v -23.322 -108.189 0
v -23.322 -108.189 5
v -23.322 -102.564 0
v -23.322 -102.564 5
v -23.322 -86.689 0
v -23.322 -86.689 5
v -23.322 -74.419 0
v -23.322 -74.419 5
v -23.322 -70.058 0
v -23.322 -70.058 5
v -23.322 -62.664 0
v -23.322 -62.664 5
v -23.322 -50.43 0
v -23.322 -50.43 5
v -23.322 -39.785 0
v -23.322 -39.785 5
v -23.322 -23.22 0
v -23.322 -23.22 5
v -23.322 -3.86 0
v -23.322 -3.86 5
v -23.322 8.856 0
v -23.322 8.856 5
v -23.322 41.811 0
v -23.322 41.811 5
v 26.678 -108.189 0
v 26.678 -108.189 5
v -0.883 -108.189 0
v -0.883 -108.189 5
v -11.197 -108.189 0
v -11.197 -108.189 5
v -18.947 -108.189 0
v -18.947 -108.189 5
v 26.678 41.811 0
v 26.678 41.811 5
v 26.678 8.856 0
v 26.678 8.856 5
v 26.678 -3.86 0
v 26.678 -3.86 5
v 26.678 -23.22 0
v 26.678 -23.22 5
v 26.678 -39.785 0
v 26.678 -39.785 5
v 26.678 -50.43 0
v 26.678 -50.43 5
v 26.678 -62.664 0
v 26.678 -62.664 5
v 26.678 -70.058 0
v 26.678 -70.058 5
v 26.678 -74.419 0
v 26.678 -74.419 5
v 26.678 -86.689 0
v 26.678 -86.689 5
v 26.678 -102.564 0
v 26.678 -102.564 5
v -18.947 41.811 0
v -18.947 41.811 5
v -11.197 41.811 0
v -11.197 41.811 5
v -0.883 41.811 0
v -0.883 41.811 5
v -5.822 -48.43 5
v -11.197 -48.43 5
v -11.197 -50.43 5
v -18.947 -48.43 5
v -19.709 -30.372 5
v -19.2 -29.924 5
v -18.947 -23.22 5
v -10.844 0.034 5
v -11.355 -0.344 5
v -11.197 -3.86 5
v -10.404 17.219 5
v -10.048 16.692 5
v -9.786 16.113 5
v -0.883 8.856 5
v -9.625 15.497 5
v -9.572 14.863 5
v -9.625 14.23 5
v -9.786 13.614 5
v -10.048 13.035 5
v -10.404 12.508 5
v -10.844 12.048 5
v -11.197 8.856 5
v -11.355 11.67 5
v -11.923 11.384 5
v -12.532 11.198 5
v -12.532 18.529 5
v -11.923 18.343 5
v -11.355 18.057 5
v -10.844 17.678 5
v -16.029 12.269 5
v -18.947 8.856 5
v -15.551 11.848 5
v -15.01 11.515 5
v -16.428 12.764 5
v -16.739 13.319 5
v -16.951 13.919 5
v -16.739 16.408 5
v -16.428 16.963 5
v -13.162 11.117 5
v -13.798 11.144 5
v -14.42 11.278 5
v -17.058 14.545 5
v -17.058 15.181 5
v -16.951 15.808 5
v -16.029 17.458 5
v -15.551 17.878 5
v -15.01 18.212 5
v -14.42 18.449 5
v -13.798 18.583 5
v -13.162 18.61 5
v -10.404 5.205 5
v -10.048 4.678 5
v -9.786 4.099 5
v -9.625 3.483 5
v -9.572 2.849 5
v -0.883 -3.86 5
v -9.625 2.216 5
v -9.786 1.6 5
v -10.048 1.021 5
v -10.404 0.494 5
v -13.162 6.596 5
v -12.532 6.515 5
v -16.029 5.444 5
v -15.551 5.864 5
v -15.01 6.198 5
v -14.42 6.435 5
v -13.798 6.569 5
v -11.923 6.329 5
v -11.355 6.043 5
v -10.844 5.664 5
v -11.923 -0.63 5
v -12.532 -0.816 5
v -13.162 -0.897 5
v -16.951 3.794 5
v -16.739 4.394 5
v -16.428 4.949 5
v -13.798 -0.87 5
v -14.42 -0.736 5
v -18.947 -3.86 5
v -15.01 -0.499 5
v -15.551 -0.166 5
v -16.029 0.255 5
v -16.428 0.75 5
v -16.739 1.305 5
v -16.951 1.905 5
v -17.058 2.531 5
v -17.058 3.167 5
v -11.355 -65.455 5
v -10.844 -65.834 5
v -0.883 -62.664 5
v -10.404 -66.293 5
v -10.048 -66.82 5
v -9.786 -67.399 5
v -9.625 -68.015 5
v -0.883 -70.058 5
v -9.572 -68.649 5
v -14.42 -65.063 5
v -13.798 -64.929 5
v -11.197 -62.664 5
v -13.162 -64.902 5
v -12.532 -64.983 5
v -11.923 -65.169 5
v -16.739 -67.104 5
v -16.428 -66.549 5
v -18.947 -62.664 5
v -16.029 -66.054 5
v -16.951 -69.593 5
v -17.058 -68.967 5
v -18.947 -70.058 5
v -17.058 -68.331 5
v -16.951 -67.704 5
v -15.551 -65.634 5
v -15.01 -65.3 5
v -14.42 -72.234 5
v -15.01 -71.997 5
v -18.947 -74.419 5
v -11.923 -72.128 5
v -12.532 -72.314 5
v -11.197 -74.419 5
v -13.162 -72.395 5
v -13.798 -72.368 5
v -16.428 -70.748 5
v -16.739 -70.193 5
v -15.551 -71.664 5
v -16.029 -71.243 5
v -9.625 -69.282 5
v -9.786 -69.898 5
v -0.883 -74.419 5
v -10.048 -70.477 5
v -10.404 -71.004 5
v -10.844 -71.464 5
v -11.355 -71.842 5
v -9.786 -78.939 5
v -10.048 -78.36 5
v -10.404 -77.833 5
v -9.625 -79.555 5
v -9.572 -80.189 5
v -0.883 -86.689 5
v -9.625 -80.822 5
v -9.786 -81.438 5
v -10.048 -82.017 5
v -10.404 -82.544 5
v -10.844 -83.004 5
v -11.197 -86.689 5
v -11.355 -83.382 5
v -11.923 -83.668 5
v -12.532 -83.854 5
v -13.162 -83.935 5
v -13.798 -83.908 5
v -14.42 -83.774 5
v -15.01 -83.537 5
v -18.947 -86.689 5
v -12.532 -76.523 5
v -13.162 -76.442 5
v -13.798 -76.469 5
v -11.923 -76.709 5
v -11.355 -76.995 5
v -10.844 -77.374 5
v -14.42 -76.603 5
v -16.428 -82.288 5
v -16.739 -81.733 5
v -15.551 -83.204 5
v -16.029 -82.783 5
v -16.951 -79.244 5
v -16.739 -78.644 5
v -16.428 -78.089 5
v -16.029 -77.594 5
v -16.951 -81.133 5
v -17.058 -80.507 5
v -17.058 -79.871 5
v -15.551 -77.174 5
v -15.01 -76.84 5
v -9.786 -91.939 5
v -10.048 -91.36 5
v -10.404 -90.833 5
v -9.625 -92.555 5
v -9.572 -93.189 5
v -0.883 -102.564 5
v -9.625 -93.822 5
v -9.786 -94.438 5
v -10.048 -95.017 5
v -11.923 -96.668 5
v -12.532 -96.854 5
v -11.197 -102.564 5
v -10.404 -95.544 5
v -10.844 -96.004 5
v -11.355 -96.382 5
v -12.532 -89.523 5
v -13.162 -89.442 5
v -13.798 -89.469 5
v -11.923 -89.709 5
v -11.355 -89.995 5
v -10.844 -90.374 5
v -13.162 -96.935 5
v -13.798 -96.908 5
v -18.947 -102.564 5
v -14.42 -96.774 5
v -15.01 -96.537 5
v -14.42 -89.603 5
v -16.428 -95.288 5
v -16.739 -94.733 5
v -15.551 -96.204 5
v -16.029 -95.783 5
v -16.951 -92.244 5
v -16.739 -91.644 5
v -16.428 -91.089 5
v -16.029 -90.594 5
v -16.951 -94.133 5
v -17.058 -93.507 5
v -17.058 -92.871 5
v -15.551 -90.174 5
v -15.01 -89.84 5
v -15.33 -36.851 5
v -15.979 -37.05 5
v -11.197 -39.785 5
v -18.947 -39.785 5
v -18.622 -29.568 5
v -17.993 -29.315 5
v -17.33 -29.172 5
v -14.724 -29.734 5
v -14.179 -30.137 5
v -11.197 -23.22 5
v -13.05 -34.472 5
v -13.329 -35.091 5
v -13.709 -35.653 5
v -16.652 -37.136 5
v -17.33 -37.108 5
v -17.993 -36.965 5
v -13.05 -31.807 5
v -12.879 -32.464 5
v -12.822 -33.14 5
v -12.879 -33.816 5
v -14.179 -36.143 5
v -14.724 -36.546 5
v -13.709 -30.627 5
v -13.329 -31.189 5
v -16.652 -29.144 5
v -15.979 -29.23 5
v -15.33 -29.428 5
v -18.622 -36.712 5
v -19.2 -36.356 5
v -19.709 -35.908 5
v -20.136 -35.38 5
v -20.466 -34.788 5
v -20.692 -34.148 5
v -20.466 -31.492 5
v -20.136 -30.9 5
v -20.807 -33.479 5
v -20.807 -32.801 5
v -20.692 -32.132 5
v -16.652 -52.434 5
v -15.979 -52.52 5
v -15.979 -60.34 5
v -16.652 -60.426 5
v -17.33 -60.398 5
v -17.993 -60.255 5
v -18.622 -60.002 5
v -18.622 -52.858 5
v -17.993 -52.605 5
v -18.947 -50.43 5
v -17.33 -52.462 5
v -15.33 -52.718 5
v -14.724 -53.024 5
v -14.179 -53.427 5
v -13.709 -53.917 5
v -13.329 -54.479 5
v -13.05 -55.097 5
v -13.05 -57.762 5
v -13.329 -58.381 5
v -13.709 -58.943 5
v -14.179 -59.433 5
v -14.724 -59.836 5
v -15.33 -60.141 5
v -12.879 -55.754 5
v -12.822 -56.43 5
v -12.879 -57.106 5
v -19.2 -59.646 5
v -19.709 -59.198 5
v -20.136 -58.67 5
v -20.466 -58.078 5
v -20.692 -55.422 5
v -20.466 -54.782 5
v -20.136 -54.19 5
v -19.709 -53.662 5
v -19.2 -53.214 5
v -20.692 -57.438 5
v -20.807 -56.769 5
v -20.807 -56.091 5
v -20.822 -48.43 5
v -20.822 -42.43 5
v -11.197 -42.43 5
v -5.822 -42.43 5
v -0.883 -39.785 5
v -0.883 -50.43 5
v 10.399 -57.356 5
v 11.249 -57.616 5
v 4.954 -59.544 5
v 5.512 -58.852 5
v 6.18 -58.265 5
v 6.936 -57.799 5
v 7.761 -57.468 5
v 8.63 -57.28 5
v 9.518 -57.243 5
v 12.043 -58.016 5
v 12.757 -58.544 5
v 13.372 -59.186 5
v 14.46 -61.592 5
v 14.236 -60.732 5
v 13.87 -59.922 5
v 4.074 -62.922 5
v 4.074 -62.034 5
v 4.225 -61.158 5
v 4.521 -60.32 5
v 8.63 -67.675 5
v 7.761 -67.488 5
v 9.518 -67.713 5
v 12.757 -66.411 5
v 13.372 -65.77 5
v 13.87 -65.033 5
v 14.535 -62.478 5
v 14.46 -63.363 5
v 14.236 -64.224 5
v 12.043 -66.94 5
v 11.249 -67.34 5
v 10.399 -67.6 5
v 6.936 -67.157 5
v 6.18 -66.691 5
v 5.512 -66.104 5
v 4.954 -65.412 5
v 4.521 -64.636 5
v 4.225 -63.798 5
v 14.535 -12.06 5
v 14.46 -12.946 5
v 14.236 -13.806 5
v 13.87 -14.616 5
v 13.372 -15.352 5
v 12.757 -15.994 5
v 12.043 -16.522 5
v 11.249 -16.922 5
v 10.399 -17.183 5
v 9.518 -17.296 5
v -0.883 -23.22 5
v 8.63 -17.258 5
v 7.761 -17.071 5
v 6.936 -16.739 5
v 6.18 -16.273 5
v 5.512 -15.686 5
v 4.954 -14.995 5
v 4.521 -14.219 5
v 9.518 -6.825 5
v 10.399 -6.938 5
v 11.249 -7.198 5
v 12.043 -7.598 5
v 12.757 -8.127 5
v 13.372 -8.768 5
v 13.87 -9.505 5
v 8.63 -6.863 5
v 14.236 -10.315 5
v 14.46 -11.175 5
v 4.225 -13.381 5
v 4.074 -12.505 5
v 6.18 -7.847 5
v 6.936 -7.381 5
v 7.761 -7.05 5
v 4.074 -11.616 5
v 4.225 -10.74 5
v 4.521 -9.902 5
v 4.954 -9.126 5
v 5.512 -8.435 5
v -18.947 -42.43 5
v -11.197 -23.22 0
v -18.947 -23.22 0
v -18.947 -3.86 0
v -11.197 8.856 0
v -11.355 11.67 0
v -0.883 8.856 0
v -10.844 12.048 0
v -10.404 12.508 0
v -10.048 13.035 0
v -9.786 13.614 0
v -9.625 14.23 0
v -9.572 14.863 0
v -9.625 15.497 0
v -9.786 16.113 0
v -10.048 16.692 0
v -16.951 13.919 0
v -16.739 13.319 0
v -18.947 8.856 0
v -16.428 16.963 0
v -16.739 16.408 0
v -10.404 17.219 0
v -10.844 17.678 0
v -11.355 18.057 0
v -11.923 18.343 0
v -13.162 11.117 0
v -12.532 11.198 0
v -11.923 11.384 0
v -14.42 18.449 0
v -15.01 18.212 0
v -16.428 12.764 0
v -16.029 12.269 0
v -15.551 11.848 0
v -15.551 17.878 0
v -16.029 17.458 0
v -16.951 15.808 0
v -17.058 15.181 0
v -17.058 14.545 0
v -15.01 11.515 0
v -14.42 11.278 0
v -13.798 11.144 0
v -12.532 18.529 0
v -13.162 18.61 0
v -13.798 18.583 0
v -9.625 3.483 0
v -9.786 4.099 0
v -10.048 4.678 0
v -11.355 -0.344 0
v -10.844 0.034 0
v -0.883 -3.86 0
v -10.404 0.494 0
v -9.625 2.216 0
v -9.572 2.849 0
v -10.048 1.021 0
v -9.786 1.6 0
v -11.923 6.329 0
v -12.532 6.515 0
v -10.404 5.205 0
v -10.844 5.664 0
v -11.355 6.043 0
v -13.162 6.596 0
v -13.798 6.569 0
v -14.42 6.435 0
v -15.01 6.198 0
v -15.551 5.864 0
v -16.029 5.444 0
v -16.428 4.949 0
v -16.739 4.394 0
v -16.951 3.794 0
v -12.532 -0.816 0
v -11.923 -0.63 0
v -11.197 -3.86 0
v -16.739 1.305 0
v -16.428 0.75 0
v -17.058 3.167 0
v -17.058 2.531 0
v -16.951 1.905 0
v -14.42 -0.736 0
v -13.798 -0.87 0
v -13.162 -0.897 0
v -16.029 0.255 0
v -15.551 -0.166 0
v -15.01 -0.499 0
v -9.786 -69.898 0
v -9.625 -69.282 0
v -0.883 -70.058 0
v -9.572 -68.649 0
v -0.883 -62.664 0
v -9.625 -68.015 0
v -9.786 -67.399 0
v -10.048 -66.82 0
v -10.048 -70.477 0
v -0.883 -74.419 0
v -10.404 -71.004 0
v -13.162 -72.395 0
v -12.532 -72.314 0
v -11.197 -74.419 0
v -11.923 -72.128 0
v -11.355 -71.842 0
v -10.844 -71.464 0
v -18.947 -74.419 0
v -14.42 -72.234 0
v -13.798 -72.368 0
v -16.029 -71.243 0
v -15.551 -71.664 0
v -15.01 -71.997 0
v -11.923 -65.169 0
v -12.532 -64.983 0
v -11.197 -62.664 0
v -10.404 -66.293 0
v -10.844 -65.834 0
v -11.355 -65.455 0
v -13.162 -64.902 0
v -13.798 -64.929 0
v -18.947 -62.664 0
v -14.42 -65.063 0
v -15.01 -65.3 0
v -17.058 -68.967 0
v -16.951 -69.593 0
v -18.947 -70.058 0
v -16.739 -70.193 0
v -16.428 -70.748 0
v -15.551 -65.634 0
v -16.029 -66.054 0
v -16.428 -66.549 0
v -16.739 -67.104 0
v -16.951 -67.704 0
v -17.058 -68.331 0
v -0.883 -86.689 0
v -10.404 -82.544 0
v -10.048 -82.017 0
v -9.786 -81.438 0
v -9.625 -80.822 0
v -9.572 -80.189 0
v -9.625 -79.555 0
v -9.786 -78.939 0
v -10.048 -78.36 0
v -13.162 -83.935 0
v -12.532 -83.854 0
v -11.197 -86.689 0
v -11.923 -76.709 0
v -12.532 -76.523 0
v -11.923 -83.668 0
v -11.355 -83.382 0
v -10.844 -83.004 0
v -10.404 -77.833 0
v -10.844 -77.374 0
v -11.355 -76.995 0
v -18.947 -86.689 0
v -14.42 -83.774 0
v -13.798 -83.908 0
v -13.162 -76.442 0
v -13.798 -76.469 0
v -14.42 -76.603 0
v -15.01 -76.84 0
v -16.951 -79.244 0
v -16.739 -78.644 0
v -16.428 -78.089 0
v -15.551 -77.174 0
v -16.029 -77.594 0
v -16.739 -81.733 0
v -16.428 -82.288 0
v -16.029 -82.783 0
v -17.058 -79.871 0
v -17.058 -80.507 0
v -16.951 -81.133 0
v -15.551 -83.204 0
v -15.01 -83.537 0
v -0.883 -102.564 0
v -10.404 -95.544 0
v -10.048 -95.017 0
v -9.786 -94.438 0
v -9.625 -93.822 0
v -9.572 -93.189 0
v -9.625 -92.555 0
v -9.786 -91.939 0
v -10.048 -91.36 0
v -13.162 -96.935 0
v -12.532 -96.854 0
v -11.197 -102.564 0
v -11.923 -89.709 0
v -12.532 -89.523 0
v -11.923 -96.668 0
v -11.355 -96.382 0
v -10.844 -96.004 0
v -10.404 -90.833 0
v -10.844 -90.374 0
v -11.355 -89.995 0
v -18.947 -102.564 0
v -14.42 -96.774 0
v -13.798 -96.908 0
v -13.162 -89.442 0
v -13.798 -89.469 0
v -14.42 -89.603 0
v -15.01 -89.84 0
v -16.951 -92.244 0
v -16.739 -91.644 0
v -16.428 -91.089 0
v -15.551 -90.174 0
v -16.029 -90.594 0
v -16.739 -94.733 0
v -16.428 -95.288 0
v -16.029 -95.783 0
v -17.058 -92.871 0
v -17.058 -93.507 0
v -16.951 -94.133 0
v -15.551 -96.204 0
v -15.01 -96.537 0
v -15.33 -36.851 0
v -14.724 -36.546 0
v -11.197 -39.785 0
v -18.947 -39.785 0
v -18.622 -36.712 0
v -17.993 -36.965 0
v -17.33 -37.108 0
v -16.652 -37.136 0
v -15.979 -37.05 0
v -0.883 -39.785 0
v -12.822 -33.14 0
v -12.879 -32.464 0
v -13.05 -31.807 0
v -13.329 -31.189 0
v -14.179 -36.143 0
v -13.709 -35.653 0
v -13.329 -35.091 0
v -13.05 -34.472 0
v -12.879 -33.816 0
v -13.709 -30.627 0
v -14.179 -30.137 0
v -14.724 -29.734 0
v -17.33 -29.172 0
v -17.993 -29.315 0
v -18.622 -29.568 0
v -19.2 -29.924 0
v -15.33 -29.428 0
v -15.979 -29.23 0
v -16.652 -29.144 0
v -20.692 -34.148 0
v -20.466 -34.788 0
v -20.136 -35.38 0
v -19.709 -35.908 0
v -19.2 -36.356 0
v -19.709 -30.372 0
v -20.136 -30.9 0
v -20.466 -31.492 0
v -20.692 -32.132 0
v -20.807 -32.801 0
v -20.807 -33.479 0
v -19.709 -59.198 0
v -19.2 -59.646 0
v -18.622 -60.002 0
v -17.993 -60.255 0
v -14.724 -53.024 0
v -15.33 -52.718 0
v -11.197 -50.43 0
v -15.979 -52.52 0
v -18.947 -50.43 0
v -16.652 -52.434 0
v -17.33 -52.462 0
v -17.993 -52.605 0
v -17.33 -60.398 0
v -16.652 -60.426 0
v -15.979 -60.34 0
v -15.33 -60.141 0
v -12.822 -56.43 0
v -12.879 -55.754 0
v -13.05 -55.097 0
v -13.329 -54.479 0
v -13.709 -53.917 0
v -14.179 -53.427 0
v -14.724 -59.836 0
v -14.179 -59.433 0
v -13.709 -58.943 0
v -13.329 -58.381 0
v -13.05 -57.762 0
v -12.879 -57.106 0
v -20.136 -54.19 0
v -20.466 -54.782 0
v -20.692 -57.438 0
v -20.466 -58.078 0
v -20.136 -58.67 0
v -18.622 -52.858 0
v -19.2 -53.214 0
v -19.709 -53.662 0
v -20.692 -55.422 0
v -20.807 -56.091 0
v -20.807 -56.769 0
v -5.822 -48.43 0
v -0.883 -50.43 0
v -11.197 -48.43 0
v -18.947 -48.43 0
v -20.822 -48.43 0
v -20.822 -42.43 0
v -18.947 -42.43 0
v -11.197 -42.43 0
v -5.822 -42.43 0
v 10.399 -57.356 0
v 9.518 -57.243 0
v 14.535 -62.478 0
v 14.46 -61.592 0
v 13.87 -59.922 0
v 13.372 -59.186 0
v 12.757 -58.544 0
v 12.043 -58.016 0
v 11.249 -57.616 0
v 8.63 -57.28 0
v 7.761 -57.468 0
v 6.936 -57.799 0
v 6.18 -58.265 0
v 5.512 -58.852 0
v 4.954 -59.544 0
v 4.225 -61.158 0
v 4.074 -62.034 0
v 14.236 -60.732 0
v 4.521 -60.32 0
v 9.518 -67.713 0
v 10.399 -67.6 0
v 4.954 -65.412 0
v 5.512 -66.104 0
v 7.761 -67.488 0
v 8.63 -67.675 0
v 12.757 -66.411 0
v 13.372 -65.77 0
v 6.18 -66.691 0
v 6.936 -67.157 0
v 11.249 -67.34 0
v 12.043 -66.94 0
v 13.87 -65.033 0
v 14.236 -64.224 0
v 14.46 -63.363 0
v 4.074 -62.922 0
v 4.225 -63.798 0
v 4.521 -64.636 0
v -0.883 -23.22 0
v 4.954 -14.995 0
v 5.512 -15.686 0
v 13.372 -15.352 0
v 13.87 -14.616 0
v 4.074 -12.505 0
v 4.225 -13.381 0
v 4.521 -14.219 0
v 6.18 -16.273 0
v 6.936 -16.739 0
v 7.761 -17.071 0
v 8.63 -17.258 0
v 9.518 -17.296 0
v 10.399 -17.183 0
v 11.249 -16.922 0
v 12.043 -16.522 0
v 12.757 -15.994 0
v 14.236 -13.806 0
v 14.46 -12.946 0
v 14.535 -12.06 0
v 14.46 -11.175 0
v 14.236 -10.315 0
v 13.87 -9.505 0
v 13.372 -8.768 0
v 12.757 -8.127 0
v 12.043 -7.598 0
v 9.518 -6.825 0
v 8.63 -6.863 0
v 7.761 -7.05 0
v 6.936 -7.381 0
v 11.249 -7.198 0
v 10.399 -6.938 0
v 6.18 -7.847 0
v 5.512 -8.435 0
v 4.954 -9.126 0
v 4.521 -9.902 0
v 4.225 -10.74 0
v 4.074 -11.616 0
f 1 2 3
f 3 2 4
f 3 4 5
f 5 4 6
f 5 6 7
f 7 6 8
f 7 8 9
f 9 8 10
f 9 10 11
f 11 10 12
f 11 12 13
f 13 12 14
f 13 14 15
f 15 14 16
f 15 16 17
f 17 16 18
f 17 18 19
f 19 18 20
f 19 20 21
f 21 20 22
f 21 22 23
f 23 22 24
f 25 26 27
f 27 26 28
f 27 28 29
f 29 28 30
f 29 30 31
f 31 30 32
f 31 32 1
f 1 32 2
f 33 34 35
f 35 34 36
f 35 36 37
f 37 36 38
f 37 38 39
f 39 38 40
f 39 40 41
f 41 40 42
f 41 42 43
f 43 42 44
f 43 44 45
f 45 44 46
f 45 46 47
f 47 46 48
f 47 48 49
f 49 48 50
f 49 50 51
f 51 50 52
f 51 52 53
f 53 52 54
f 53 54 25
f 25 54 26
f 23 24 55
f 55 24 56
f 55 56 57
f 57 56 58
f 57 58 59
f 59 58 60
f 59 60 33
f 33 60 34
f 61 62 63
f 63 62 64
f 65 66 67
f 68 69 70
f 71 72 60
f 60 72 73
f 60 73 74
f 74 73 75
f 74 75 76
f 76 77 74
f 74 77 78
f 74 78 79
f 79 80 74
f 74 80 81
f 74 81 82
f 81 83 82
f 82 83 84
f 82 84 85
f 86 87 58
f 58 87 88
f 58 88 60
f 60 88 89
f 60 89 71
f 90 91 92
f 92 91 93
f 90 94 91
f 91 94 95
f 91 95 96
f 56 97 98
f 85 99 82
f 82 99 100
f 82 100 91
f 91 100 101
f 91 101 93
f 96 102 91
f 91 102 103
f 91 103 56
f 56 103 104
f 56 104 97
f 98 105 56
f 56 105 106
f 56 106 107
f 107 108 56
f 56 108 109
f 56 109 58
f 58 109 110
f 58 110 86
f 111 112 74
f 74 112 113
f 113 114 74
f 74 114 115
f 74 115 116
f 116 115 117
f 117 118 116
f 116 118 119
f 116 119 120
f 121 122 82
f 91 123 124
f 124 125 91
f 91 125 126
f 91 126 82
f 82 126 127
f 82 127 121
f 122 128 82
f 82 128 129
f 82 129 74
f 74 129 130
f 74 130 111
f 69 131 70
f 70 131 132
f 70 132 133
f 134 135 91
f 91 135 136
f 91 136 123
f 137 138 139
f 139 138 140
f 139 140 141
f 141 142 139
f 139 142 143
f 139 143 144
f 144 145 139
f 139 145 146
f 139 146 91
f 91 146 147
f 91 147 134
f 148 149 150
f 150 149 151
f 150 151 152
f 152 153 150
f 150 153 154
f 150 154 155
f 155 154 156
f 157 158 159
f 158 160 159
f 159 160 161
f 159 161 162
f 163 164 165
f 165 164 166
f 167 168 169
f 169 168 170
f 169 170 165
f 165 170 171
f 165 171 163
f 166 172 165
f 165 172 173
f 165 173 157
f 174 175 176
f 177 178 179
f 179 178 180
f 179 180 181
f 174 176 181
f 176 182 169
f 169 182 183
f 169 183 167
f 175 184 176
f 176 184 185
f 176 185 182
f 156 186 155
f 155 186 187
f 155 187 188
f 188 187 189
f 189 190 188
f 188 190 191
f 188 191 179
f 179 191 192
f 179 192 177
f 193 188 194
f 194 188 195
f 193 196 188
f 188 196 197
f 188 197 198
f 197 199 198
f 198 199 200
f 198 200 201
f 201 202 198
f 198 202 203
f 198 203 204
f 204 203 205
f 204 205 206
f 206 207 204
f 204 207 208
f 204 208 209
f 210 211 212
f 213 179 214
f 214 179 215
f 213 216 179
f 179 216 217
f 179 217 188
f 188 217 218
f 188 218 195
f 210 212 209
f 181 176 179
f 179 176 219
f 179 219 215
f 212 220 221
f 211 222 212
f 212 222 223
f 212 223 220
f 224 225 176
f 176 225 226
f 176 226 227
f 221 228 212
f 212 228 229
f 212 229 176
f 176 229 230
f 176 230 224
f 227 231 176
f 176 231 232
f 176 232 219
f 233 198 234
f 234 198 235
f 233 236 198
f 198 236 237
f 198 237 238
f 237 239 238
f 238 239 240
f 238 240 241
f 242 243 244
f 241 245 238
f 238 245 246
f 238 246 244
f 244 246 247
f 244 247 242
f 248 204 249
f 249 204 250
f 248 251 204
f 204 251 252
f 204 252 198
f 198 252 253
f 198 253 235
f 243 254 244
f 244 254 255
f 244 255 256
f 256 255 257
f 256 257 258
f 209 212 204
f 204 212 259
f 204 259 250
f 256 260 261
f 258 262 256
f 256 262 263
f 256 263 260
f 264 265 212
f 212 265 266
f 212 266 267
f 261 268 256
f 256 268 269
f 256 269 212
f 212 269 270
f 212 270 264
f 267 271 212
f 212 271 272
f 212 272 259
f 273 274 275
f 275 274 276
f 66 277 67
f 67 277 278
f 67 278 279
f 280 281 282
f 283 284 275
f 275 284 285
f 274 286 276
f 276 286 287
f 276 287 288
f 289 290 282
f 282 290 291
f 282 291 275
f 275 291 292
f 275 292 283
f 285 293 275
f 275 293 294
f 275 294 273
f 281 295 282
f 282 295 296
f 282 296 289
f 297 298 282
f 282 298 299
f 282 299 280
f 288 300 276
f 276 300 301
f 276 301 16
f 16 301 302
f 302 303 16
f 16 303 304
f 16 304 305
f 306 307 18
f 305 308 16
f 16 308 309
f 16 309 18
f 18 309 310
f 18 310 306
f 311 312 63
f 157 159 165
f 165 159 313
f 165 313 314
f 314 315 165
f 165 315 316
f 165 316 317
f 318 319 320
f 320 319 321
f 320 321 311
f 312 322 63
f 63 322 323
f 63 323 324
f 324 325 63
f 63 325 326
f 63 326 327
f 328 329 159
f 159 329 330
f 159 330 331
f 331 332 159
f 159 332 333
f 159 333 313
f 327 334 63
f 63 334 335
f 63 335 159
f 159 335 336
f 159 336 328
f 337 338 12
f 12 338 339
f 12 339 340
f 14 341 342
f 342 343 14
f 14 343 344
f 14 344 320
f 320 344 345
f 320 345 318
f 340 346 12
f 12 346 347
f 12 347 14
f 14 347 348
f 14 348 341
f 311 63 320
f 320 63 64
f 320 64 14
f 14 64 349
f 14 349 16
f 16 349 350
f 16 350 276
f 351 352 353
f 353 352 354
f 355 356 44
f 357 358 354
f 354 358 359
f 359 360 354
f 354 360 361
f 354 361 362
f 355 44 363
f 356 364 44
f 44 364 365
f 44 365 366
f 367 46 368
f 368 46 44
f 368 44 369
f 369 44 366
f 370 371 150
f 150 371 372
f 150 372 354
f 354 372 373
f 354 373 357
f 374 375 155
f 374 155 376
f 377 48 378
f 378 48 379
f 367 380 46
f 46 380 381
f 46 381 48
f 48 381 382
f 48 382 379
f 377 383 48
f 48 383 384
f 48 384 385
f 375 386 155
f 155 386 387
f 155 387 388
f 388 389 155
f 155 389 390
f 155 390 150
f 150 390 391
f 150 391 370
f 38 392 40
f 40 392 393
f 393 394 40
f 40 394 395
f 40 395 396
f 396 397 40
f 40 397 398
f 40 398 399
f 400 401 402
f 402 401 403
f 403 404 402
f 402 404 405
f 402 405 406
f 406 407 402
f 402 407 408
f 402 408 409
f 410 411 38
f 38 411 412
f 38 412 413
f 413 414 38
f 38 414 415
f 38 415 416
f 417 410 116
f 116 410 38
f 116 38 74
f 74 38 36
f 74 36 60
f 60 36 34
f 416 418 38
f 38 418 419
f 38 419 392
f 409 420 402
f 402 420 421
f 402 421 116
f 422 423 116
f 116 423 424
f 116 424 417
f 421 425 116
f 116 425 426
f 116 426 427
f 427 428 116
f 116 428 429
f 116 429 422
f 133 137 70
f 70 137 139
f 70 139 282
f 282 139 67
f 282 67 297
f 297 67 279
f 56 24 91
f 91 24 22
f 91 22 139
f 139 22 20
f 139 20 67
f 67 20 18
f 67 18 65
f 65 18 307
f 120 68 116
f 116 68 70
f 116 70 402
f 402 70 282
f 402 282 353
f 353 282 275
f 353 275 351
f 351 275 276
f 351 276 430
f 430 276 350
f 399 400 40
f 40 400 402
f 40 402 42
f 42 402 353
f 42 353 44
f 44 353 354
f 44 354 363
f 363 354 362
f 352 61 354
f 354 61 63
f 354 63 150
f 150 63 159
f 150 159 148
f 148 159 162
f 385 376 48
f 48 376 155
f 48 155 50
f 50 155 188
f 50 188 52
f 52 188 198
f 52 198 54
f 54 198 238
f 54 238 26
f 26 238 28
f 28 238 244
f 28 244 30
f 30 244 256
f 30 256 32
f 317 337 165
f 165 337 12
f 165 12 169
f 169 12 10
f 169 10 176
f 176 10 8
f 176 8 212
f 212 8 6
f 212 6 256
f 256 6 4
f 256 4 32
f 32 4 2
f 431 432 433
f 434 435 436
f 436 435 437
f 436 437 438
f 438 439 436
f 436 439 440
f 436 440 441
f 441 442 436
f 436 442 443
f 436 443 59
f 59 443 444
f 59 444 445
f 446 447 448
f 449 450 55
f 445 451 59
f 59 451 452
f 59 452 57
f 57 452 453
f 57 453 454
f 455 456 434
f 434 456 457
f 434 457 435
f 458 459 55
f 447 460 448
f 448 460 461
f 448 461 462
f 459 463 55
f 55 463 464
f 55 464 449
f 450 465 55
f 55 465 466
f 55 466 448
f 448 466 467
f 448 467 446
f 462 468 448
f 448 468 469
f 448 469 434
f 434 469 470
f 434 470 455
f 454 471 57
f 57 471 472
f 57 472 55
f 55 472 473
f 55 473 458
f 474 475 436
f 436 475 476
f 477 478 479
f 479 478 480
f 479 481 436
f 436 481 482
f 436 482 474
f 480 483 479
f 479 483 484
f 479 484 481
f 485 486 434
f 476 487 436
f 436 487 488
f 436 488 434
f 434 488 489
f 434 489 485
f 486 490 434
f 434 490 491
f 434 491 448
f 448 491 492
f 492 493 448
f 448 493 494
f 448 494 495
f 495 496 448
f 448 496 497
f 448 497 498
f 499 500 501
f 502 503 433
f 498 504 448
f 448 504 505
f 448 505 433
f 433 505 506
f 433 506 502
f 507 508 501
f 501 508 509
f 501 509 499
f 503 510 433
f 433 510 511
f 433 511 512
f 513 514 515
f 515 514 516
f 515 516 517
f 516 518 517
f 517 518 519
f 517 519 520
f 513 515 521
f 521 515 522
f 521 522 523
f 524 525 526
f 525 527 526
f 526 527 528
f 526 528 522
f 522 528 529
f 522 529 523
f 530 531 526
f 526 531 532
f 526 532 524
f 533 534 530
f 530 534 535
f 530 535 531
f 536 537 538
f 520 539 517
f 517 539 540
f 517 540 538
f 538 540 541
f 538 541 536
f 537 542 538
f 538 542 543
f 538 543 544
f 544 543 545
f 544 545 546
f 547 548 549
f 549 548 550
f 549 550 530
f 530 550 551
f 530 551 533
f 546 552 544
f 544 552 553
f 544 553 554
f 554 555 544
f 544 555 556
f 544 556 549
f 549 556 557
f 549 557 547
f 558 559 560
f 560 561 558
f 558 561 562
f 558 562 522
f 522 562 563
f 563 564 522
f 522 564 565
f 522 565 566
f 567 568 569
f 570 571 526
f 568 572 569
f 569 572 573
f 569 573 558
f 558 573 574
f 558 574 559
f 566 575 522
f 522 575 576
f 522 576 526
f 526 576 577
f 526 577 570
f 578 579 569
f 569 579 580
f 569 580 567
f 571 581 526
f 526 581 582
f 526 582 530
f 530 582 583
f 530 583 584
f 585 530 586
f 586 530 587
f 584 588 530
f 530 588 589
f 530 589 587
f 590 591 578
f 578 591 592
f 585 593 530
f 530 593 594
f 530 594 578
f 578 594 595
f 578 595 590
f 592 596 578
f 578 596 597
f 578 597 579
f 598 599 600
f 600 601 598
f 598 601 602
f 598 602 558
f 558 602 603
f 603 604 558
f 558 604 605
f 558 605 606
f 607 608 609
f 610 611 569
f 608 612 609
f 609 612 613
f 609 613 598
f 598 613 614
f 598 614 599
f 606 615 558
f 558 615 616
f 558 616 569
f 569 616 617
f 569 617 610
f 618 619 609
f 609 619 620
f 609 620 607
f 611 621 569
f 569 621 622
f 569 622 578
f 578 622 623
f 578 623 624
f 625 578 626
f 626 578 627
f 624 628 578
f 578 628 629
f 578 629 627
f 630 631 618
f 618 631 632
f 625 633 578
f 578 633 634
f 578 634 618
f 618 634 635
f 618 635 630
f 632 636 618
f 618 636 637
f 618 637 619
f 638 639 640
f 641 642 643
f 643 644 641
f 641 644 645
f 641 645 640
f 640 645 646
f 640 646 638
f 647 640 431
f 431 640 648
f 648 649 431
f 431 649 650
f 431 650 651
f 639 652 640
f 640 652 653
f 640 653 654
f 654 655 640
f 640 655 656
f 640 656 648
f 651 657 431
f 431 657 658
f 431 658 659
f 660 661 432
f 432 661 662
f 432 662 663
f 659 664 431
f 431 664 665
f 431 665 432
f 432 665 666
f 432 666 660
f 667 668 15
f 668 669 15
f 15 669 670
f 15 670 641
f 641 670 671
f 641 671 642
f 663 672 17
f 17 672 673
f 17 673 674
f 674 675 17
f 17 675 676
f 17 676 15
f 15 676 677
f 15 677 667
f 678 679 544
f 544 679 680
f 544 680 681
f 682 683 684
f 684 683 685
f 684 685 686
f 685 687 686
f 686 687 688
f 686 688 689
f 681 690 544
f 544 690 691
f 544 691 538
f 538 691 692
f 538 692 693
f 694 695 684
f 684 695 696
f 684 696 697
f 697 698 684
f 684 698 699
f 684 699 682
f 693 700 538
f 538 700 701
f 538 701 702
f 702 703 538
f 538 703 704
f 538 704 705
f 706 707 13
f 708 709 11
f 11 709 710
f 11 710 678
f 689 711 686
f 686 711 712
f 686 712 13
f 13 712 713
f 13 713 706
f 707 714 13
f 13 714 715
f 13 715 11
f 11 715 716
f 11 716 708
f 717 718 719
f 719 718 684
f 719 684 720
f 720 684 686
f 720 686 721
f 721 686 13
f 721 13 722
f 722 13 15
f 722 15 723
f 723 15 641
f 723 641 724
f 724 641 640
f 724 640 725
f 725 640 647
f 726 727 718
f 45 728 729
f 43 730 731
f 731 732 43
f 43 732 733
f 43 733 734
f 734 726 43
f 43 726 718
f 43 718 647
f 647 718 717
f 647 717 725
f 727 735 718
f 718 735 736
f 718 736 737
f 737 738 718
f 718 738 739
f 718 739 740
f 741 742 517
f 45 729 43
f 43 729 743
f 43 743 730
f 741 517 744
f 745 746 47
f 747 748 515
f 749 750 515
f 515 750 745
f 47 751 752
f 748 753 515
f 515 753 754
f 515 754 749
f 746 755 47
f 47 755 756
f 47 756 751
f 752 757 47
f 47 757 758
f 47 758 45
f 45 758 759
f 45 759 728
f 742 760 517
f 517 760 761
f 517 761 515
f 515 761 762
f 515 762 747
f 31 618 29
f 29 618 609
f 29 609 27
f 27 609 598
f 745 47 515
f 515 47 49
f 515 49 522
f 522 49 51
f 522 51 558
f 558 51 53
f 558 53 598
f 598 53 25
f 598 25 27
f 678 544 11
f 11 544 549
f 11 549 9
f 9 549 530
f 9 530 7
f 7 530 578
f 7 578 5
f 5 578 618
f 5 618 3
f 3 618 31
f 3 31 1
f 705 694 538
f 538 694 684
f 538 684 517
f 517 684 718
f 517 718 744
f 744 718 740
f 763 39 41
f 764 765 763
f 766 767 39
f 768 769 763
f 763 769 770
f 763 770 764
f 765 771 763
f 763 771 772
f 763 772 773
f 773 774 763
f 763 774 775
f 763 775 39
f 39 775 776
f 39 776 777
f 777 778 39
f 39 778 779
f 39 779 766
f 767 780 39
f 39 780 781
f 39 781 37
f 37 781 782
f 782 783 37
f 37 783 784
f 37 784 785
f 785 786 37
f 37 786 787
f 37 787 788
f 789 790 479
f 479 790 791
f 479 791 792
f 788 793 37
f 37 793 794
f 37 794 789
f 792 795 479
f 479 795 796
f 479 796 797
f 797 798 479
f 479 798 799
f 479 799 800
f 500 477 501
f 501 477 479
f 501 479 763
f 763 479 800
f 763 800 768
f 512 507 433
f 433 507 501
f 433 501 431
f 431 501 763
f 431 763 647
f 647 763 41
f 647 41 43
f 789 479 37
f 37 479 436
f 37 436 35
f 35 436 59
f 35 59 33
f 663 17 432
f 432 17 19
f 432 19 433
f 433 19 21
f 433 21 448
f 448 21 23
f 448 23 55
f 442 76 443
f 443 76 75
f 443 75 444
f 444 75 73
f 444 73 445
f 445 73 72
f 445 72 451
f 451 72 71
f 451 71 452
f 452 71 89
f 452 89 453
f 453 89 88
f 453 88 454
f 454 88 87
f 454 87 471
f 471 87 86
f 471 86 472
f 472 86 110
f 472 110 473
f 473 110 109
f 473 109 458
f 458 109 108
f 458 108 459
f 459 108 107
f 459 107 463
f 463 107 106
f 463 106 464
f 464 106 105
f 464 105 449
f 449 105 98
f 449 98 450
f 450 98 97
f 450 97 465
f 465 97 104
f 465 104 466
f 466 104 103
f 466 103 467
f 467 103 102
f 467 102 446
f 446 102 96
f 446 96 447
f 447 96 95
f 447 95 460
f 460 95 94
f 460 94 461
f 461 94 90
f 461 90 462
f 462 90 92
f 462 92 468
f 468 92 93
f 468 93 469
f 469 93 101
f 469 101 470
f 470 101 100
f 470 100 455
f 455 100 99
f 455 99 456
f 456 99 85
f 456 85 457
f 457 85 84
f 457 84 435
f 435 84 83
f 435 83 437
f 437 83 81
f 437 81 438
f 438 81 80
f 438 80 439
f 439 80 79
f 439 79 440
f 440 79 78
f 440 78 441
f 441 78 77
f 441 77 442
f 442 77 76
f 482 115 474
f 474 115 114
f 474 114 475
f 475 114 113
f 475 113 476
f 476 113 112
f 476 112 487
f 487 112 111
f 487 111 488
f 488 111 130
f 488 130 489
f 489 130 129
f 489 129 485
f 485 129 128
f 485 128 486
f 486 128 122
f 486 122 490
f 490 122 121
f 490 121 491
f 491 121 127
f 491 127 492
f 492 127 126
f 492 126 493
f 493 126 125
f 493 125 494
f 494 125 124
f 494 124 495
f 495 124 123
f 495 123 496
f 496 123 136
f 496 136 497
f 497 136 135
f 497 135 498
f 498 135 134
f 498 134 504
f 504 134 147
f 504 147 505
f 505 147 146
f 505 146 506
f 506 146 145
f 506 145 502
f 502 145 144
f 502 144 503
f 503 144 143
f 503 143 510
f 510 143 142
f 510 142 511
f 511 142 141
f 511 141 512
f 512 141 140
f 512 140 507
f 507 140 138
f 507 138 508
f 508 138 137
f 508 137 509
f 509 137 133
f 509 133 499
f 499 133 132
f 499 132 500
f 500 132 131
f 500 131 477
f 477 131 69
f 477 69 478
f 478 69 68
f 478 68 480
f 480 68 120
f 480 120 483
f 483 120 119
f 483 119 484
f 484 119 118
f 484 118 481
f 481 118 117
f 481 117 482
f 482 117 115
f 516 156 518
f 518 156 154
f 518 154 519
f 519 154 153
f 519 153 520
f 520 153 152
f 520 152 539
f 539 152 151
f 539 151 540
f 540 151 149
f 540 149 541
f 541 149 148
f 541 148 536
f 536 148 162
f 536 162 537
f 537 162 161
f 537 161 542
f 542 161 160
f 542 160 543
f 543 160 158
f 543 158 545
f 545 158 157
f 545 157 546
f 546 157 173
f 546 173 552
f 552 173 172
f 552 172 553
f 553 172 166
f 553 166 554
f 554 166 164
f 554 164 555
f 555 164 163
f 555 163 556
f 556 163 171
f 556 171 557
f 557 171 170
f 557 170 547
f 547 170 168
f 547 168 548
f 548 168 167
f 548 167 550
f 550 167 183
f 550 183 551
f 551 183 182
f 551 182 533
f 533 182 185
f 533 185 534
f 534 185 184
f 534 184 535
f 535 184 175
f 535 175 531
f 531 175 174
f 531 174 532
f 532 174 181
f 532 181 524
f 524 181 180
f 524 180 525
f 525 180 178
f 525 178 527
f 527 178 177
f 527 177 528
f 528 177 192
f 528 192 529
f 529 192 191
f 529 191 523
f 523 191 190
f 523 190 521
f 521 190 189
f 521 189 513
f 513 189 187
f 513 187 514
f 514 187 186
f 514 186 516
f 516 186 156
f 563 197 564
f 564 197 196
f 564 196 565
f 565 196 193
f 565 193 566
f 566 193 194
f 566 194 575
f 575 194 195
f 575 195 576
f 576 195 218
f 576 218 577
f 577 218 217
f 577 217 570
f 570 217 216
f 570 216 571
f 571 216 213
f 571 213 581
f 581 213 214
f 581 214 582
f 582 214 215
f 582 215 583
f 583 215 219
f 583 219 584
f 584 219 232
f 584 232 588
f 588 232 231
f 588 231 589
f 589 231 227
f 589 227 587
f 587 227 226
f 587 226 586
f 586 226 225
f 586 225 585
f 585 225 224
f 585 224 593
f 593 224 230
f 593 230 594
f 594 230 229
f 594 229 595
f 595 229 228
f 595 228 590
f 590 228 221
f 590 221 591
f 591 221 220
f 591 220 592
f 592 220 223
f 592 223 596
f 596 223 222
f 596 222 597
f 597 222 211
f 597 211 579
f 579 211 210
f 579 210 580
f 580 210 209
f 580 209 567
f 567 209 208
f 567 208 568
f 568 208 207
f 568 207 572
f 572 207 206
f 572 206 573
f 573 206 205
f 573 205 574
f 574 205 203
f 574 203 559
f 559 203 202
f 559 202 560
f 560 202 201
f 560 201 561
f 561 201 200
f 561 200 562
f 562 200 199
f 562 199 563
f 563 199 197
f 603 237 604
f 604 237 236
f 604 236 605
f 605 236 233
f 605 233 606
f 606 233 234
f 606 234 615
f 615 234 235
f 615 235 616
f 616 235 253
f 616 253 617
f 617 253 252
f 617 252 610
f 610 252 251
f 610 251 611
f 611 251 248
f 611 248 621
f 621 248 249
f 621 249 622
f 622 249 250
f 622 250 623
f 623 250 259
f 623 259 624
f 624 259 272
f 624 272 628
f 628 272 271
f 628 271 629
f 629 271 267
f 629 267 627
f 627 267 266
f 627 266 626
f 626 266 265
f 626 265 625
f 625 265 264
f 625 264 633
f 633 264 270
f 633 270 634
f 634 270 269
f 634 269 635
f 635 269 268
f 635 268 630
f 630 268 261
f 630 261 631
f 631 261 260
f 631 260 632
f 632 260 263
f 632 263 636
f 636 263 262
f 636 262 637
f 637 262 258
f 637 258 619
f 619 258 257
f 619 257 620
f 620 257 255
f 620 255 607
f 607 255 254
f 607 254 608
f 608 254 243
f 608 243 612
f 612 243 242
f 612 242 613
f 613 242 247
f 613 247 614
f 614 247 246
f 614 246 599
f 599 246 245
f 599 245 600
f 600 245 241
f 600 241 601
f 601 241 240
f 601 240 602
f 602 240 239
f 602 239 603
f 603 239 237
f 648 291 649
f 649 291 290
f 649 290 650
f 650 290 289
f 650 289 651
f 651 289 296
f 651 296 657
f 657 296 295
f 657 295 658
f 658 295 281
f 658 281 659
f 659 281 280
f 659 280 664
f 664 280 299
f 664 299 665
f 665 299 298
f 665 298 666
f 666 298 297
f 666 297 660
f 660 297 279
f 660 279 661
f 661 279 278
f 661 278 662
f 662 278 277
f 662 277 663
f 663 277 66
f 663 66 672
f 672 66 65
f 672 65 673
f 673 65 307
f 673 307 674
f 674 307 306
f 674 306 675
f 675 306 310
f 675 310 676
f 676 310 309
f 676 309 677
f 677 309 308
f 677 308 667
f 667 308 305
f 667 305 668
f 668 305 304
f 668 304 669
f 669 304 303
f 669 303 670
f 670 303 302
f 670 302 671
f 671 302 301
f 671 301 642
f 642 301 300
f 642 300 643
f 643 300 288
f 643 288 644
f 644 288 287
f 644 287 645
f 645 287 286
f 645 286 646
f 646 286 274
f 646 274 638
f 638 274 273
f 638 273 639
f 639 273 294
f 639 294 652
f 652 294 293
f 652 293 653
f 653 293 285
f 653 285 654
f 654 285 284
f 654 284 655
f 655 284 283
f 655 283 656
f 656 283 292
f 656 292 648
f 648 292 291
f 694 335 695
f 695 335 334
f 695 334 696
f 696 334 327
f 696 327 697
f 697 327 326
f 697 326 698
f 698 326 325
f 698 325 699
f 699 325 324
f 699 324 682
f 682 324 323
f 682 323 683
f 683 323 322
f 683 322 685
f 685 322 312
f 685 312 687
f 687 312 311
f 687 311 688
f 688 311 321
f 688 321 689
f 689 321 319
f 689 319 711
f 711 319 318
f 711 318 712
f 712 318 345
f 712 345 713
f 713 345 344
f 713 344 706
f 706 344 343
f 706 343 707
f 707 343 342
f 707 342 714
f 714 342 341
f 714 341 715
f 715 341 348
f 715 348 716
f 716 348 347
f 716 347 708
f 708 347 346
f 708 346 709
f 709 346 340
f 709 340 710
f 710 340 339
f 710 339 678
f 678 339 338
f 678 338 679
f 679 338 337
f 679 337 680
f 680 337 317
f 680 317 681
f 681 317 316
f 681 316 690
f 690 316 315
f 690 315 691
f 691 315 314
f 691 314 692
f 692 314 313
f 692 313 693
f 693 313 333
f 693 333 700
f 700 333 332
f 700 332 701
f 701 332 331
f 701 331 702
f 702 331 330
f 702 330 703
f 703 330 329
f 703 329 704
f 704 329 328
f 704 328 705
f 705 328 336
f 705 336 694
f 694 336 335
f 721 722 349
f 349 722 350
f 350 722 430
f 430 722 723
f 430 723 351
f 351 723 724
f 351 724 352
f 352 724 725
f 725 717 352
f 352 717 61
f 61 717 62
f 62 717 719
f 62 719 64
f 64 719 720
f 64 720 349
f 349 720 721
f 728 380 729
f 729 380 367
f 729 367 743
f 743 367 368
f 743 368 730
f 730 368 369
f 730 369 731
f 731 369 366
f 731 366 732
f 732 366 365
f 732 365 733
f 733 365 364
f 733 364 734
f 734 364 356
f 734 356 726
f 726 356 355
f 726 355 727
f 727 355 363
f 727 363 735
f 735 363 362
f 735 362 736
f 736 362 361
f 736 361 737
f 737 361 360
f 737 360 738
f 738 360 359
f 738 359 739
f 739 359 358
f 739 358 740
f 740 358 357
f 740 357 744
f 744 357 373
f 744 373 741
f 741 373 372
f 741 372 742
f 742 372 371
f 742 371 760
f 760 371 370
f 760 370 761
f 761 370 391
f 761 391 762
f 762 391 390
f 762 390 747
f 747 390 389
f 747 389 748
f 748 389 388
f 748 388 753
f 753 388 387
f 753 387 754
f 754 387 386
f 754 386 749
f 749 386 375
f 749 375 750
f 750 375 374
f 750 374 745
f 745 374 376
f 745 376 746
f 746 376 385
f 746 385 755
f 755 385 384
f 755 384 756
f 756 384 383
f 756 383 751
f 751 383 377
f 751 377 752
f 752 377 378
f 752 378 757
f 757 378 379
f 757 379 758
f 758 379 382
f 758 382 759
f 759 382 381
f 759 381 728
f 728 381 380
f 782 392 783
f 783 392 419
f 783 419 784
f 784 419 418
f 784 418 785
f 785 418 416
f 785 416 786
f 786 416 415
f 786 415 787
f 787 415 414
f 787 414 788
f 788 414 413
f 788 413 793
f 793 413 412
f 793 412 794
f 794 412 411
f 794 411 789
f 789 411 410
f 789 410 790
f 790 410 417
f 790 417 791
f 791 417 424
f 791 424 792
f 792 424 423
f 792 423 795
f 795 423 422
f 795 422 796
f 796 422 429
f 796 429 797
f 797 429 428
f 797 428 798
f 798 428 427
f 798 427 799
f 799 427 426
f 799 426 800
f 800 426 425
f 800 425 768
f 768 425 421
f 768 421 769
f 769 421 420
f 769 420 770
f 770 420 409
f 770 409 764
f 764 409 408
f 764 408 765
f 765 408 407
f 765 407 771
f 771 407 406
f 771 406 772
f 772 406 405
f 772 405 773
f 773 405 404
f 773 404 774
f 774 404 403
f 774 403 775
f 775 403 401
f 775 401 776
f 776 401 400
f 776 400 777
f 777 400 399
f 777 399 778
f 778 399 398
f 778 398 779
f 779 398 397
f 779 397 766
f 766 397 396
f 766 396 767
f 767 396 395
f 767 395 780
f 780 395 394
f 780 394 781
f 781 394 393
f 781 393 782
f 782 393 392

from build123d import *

# Parameters (mm, degrees)
SKETCH_1_W          = 50
SKETCH_1_H          = 150
EXTRUDE_1_DEPTH     = 5
SKETCH_2_R          = 3.75
CUT_EXTRUDE_1_DEPTH = 5
SKETCH_3_R          = 4
CUT_EXTRUDE_2_DEPTH = 5
SKETCH_4_W          = 15
SKETCH_4_H          = 6
CUT_EXTRUDE_3_DEPTH = 5
SKETCH_5_R          = 5.24
CUT_EXTRUDE_4_DEPTH = 5


with BuildPart() as part:
    # 草图1 → 凸台-拉伸1 (new body)
    with BuildSketch(Plane.XY):
        with Locations((1.67844523, -33.188535046)):
            Rectangle(SKETCH_1_W, SKETCH_1_H)
    extrude(amount=EXTRUDE_1_DEPTH)

    # 草图2 → 切除-拉伸1 (cut)
    with BuildSketch(Plane.XY.offset(5)):
        with Locations((-13.32155477, -93.188535046)):
            Circle(SKETCH_2_R)
        with Locations((-13.32155477, -80.188535046)):
            Circle(SKETCH_2_R)
        with Locations((-13.32155477, -68.648535046)):
            Circle(SKETCH_2_R)
        with Locations((-13.32155477, 2.849464954)):
            Circle(SKETCH_2_R)
        with Locations((-13.32155477, 14.863464954)):
            Circle(SKETCH_2_R)
    extrude(amount=-CUT_EXTRUDE_1_DEPTH, mode=Mode.SUBTRACT)

    # 草图3 → 切除-拉伸2 (cut)
    with BuildSketch(Plane.XY.offset(5)):
        with Locations((-16.82155477, -56.429938563)):
            Circle(SKETCH_3_R)
        with Locations((-16.82155477, -33.139938563)):
            Circle(SKETCH_3_R)
    extrude(amount=-CUT_EXTRUDE_2_DEPTH, mode=Mode.SUBTRACT)

    # 草图4 → 切除-拉伸3 (cut)
    with BuildSketch(Plane.XY.offset(5)):
        with Locations((-13.32155477, -45.429938563)):
            Rectangle(SKETCH_4_W, SKETCH_4_H)
    extrude(amount=-CUT_EXTRUDE_3_DEPTH, mode=Mode.SUBTRACT)

    # 草图5 → 切除-拉伸4 (cut)
    with BuildSketch(Plane.XY.offset(5)):
        with Locations((9.295497906, -12.060281788)):
            Circle(SKETCH_5_R)
        with Locations((9.295497906, -62.477916171)):
            Circle(SKETCH_5_R)
    extrude(amount=-CUT_EXTRUDE_4_DEPTH, mode=Mode.SUBTRACT)


solid = part.part
